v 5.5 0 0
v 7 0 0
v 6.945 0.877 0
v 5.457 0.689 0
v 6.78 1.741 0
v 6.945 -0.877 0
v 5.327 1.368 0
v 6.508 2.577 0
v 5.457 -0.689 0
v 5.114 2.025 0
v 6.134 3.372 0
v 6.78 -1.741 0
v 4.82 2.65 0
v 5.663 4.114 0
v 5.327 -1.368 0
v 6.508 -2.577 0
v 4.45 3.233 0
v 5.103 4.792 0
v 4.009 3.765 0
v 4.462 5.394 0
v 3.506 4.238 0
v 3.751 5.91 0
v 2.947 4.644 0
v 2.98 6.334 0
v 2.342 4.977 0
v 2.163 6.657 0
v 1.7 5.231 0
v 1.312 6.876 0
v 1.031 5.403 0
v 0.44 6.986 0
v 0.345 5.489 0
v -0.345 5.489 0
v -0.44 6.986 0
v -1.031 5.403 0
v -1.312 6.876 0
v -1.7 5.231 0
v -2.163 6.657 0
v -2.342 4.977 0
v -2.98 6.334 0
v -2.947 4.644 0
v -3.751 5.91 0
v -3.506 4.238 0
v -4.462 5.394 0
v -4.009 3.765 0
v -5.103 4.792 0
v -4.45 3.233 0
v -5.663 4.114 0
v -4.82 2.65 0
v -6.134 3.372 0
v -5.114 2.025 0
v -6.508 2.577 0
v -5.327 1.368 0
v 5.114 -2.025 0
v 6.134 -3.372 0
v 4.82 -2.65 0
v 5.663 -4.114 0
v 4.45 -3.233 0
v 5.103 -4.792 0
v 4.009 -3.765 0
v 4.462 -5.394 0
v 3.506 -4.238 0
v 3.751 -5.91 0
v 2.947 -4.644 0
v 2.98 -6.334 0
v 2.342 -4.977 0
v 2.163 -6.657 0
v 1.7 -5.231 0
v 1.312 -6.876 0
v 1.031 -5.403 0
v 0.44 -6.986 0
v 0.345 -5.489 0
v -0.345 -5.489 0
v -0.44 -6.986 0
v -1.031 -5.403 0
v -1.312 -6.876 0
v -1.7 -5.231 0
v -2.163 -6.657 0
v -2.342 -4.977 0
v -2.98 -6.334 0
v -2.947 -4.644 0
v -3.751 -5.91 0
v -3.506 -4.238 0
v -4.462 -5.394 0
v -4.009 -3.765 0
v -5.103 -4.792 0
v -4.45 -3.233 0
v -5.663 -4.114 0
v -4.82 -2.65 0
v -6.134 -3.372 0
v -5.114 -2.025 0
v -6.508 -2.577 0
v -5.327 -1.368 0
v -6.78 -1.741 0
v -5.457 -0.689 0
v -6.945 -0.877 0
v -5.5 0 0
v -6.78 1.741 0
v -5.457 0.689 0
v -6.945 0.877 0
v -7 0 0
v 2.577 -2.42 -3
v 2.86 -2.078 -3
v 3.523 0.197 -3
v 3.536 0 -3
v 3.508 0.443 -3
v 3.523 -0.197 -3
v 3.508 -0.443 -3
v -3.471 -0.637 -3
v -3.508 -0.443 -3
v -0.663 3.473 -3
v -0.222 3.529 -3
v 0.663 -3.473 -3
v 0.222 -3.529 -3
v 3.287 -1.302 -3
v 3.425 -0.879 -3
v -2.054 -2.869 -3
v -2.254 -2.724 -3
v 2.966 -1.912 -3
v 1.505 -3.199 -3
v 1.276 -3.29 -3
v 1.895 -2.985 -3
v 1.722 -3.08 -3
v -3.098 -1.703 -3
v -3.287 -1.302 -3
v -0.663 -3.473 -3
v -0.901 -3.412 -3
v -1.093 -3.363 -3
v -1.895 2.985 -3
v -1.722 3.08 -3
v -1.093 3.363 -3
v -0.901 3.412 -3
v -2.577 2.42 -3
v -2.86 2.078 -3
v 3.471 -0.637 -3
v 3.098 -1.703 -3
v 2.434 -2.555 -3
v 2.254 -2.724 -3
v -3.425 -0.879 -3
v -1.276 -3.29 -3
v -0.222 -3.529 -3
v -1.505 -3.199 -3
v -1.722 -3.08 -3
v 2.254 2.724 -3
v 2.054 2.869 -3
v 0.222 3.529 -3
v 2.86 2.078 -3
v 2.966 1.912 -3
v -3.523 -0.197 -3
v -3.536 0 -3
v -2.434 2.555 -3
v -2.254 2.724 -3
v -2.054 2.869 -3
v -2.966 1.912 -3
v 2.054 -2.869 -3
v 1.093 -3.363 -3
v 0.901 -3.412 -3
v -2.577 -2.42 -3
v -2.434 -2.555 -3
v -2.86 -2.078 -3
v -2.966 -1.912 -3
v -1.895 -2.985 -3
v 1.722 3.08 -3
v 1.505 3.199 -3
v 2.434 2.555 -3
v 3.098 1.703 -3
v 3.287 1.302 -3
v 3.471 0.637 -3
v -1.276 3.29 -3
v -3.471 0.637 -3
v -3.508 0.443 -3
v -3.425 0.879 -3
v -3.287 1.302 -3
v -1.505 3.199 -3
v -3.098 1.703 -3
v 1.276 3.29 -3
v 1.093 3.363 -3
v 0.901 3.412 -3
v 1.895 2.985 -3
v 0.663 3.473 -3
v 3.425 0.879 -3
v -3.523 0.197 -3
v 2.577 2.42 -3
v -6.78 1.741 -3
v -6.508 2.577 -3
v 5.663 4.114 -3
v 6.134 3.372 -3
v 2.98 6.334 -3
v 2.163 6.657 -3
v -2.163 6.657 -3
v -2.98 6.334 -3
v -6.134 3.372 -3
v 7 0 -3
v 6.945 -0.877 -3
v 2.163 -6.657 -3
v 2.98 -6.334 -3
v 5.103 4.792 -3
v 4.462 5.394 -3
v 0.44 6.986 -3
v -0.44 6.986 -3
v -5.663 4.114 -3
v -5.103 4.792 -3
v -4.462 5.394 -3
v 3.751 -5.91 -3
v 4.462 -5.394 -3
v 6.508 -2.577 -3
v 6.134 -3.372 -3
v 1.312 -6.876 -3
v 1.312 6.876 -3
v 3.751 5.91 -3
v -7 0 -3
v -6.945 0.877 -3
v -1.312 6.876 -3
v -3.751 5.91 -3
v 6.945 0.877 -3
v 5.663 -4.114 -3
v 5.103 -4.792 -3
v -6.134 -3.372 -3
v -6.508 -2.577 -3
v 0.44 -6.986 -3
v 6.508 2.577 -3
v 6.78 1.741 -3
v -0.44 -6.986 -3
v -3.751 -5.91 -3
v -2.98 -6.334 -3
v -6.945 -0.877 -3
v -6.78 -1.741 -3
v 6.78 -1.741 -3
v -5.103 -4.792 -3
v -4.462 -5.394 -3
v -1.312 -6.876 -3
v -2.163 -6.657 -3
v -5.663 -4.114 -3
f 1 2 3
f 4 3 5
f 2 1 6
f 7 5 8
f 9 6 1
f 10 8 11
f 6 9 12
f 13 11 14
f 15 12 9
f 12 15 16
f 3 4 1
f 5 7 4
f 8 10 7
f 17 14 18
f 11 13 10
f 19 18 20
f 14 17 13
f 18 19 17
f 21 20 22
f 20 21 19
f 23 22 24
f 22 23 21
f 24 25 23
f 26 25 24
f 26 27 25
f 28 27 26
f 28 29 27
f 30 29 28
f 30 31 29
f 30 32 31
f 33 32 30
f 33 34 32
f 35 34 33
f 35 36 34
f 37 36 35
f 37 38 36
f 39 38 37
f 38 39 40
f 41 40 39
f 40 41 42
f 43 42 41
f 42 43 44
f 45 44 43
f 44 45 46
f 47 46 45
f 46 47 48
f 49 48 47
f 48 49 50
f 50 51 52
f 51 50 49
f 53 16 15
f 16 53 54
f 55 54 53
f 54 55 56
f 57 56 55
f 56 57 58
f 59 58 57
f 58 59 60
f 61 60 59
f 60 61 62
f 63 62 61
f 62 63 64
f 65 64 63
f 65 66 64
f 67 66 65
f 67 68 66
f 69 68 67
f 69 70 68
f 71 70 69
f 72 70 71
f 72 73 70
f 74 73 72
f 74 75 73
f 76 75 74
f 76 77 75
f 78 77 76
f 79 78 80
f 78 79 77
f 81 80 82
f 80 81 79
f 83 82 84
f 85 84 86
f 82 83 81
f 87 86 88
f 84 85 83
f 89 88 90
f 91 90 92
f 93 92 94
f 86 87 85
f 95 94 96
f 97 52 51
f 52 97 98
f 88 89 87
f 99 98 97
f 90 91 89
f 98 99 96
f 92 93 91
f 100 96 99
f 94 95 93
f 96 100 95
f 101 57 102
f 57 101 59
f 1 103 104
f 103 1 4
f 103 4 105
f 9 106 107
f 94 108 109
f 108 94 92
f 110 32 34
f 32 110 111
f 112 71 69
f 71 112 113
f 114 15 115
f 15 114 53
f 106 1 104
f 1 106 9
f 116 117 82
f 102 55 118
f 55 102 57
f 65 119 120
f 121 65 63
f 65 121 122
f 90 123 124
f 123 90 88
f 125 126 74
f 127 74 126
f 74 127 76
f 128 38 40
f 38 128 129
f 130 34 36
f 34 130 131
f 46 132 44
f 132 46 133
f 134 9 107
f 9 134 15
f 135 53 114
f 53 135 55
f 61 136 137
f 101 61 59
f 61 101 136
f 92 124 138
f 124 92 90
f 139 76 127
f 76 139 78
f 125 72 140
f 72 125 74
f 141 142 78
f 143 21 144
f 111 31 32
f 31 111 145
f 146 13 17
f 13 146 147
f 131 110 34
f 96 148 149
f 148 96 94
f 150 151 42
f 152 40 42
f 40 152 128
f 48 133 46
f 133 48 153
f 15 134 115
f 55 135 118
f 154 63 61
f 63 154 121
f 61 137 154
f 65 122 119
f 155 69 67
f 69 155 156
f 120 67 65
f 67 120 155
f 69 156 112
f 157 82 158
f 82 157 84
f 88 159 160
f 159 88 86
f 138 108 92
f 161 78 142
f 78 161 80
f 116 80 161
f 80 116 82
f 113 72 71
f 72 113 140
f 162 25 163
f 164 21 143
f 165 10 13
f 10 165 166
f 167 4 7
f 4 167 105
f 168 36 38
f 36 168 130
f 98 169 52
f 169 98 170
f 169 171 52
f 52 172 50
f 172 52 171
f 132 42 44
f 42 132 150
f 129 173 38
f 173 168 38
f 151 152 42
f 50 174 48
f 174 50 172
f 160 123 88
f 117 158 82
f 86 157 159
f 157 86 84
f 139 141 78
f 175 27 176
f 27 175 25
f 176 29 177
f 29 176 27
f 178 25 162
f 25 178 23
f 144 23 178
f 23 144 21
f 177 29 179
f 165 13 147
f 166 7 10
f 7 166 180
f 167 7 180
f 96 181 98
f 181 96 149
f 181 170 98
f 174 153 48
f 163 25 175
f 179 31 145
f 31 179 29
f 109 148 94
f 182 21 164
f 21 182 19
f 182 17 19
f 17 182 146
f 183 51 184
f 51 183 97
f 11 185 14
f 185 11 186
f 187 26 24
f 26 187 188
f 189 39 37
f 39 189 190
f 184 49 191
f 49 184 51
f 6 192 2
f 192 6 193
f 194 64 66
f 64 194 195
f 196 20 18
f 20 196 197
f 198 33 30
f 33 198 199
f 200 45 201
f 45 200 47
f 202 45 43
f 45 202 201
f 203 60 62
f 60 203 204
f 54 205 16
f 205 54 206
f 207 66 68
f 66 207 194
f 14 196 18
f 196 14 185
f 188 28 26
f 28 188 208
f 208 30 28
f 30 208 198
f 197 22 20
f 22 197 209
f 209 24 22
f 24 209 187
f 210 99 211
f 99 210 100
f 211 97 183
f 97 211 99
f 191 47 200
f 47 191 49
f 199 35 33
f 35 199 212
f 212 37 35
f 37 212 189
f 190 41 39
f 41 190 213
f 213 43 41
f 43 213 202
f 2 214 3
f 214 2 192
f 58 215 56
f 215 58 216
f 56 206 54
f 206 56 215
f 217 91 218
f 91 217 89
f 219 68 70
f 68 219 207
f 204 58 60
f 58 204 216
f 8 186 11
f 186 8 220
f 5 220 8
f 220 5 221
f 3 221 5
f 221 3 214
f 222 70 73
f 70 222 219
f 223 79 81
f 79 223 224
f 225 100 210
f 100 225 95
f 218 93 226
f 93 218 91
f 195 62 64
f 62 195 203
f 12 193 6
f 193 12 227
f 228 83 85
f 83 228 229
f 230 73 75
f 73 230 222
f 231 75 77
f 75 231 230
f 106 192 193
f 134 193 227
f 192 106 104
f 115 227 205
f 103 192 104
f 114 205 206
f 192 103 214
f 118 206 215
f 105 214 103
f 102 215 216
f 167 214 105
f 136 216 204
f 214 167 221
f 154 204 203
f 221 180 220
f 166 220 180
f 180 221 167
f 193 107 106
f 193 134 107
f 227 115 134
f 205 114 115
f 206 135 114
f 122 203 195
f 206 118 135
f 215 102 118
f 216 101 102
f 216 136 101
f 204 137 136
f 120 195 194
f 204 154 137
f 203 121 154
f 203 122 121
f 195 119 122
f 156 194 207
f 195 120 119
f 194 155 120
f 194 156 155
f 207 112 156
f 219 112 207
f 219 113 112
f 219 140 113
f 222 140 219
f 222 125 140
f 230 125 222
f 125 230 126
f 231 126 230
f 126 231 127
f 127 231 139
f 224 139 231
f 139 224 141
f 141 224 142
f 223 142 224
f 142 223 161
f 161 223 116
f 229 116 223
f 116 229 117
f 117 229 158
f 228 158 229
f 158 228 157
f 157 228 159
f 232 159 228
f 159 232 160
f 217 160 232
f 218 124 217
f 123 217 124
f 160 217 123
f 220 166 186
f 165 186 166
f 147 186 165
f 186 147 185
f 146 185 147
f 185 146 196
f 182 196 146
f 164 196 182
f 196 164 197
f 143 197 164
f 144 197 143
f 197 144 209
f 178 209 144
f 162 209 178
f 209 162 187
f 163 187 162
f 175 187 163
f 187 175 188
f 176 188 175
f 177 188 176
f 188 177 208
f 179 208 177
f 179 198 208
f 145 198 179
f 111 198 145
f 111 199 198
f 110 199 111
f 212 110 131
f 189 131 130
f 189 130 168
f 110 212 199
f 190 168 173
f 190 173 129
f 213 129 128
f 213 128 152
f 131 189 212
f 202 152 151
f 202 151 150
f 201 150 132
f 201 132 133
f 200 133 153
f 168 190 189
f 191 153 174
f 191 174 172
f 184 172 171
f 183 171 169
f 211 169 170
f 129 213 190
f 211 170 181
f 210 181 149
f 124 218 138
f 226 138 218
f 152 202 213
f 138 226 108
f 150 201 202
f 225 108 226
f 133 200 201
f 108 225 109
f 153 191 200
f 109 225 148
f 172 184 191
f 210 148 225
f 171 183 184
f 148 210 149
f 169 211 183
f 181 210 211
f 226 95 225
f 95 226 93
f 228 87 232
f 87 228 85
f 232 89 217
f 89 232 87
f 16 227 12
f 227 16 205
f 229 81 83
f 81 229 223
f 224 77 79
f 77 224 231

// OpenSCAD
$fn = 50;


difference() {
	union() {
		translate(v = [0, 0, -3.0000000000]) {
			cylinder(h = 3, r = 7.0000000000);
		}
	}
	union() {
		translate(v = [0, 0, 0]) {
			rotate(a = [0, 0, 0]) {
				difference() {
					union() {
						translate(v = [0, 0, -3.0000000000]) {
							cylinder(h = 3, r = 2.2500000000);
						}
						translate(v = [0, 0, -4.2000000000]) {
							cylinder(h = 4.2000000000, r1 = 2.7500000000, r2 = 5.5000000000);
						}
						translate(v = [0, 0, -3.0000000000]) {
							cylinder(h = 3, r = 2.7500000000);
						}
						translate(v = [0, 0, -3.0000000000]) {
							cylinder(h = 3, r = 2.2500000000);
						}
					}
					union();
				}
			}
		}
	}
}
